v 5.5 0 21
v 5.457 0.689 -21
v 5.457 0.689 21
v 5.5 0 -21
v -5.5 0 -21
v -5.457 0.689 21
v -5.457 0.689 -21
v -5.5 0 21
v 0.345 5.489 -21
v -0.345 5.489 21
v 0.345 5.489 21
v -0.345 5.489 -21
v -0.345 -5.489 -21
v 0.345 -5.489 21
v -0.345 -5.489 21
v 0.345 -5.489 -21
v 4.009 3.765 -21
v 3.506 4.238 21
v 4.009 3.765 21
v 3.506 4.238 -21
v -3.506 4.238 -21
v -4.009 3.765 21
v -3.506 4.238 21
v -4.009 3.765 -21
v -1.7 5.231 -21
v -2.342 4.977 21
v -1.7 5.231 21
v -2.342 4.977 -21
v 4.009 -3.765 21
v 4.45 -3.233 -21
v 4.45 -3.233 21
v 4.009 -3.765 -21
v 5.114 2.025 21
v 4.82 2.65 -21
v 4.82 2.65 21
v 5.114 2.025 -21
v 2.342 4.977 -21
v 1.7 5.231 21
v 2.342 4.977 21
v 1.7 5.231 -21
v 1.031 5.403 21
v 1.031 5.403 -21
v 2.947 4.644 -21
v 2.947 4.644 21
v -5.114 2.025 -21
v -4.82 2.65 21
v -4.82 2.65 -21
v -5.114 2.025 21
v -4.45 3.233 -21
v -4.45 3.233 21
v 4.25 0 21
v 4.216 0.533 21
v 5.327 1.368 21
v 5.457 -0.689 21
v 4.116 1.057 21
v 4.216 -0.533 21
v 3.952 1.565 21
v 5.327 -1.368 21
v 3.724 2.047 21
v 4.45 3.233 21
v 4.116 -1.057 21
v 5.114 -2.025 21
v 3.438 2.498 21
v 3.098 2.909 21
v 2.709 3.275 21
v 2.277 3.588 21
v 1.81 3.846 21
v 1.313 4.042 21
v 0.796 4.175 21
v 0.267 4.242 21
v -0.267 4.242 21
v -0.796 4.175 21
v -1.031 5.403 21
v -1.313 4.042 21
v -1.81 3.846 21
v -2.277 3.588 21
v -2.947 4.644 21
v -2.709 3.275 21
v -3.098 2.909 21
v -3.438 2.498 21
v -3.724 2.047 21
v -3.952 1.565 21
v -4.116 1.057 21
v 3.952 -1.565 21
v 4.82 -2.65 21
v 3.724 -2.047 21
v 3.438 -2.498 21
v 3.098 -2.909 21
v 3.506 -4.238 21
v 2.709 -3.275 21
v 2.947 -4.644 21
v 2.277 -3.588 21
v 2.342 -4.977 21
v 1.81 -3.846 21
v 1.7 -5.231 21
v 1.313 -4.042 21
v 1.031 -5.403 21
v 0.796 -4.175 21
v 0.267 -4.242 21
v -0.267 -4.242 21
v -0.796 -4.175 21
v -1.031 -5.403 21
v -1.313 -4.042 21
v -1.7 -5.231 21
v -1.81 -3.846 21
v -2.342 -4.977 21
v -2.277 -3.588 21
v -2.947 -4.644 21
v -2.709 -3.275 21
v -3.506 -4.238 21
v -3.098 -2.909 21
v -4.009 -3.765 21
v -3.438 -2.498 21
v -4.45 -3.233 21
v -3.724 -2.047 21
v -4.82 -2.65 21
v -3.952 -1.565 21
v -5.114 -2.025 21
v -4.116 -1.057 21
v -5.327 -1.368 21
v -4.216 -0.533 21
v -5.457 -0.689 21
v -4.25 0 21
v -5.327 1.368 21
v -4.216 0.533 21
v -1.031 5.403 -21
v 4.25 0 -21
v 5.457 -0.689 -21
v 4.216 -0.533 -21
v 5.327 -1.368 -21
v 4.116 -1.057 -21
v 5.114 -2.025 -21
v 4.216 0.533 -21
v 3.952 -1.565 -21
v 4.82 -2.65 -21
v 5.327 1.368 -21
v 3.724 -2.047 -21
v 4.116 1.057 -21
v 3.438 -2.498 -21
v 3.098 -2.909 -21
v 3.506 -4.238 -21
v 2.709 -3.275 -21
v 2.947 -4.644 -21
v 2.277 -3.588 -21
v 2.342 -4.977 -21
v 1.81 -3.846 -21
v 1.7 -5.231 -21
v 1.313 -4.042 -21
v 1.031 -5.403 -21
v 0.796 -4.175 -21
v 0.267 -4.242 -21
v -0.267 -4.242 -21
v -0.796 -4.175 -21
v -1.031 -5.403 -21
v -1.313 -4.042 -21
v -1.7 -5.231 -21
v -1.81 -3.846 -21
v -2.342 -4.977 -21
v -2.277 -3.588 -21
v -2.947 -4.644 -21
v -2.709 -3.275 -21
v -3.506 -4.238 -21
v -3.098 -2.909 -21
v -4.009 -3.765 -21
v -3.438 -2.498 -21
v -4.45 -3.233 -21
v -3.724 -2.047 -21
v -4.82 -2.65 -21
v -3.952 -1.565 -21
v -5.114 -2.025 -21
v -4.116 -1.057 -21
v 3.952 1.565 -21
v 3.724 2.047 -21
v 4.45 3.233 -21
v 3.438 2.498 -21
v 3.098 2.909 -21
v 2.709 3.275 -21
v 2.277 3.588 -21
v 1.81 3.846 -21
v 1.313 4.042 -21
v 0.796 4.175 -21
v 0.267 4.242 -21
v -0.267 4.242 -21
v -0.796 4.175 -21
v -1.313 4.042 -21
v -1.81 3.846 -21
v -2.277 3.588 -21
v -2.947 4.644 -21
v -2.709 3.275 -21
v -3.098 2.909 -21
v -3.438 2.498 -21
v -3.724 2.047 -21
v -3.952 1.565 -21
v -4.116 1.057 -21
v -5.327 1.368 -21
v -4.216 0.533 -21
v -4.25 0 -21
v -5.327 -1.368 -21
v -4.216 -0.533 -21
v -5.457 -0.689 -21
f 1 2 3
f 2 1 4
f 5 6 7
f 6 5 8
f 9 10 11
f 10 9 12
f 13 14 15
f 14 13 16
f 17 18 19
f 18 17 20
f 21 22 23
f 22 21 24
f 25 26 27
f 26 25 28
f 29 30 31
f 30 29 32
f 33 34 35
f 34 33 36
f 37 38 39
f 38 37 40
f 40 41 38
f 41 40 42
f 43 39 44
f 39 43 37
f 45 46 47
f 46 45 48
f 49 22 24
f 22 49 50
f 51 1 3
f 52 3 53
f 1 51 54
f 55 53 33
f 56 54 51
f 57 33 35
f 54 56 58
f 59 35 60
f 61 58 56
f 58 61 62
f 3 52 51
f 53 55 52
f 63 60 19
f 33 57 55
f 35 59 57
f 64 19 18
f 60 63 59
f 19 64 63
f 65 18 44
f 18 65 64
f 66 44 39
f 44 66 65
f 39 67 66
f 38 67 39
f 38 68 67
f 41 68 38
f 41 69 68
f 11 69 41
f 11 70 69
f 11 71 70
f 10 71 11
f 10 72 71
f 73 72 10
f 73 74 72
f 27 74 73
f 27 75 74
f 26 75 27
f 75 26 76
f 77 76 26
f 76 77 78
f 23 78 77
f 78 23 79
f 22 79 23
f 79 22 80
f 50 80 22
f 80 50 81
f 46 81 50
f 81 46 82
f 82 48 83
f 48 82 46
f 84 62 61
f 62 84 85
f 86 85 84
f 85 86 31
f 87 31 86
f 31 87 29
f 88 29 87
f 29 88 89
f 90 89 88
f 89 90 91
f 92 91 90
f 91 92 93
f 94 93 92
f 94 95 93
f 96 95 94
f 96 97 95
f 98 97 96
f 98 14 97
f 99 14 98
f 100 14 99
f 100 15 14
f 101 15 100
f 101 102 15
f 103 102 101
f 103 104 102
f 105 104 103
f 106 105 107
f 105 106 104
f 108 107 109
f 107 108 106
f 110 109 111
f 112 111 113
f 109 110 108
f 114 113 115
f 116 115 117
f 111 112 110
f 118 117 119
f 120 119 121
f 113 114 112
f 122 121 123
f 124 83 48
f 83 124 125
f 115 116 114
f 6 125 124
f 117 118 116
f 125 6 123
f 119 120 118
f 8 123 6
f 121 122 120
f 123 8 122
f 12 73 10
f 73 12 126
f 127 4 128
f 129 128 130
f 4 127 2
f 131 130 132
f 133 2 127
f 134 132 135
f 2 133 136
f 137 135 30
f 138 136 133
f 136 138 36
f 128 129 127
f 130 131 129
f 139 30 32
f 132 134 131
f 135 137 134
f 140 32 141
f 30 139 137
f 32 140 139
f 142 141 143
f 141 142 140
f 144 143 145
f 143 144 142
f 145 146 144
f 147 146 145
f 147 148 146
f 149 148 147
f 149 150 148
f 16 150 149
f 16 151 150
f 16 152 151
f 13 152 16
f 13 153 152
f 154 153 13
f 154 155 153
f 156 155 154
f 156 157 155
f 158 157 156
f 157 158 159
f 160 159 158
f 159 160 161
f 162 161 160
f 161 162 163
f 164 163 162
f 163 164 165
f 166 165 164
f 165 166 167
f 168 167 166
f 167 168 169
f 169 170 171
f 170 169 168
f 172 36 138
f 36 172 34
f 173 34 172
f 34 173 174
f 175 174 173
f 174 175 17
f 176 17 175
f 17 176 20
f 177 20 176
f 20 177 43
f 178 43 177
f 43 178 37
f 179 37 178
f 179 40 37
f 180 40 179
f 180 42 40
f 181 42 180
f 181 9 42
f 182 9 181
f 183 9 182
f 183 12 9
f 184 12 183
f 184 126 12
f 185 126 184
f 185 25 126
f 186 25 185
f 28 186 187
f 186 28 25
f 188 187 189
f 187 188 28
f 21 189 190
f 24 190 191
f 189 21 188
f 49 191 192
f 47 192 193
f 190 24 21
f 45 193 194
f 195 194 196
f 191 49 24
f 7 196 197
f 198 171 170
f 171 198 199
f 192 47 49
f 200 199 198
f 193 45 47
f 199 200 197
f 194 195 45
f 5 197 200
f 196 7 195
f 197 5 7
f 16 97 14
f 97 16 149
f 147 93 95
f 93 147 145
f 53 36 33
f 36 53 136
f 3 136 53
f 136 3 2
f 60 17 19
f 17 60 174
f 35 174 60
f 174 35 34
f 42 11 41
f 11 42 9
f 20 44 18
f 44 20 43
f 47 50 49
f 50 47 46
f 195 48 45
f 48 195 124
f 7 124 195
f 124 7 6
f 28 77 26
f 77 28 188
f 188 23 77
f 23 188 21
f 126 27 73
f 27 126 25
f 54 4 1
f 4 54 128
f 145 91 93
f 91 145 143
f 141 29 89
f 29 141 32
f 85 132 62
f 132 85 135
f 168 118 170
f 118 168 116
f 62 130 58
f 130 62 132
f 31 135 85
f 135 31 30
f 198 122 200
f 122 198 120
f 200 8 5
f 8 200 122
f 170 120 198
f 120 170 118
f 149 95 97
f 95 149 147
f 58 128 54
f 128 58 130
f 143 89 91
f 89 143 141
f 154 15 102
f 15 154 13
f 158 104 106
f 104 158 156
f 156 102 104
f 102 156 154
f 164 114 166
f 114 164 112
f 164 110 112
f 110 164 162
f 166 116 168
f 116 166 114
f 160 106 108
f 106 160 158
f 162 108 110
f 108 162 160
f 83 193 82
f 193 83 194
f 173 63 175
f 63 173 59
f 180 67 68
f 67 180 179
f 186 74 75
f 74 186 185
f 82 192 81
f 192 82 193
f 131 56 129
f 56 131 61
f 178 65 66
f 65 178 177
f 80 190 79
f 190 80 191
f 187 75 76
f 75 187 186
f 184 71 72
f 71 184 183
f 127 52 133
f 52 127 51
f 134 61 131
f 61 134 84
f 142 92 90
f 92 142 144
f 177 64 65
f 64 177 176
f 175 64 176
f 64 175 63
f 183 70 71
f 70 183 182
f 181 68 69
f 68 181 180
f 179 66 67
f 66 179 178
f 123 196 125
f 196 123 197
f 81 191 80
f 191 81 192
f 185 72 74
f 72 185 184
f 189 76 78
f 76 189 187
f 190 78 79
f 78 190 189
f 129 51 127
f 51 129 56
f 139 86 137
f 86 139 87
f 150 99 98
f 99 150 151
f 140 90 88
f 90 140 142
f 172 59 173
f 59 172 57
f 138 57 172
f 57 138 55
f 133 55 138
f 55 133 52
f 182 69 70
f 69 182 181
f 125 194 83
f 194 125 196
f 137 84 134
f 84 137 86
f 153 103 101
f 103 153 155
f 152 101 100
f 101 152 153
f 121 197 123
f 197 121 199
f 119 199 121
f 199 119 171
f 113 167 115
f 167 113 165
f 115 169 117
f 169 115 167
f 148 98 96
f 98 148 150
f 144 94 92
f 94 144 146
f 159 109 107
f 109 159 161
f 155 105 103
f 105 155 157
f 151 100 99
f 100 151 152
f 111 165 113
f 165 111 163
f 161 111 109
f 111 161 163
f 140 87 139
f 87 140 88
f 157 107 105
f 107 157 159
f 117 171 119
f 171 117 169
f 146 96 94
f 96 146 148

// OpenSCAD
$fn = 50;


difference() {
	union() {
		translate(v = [0, 0, -21.0000000000]) {
			cylinder(h = 42, r = 5.5000000000);
		}
	}
	union() {
		translate(v = [0, 0, -100.0000000000]) {
			cylinder(h = 200, r = 4.2500000000);
		}
	}
}
